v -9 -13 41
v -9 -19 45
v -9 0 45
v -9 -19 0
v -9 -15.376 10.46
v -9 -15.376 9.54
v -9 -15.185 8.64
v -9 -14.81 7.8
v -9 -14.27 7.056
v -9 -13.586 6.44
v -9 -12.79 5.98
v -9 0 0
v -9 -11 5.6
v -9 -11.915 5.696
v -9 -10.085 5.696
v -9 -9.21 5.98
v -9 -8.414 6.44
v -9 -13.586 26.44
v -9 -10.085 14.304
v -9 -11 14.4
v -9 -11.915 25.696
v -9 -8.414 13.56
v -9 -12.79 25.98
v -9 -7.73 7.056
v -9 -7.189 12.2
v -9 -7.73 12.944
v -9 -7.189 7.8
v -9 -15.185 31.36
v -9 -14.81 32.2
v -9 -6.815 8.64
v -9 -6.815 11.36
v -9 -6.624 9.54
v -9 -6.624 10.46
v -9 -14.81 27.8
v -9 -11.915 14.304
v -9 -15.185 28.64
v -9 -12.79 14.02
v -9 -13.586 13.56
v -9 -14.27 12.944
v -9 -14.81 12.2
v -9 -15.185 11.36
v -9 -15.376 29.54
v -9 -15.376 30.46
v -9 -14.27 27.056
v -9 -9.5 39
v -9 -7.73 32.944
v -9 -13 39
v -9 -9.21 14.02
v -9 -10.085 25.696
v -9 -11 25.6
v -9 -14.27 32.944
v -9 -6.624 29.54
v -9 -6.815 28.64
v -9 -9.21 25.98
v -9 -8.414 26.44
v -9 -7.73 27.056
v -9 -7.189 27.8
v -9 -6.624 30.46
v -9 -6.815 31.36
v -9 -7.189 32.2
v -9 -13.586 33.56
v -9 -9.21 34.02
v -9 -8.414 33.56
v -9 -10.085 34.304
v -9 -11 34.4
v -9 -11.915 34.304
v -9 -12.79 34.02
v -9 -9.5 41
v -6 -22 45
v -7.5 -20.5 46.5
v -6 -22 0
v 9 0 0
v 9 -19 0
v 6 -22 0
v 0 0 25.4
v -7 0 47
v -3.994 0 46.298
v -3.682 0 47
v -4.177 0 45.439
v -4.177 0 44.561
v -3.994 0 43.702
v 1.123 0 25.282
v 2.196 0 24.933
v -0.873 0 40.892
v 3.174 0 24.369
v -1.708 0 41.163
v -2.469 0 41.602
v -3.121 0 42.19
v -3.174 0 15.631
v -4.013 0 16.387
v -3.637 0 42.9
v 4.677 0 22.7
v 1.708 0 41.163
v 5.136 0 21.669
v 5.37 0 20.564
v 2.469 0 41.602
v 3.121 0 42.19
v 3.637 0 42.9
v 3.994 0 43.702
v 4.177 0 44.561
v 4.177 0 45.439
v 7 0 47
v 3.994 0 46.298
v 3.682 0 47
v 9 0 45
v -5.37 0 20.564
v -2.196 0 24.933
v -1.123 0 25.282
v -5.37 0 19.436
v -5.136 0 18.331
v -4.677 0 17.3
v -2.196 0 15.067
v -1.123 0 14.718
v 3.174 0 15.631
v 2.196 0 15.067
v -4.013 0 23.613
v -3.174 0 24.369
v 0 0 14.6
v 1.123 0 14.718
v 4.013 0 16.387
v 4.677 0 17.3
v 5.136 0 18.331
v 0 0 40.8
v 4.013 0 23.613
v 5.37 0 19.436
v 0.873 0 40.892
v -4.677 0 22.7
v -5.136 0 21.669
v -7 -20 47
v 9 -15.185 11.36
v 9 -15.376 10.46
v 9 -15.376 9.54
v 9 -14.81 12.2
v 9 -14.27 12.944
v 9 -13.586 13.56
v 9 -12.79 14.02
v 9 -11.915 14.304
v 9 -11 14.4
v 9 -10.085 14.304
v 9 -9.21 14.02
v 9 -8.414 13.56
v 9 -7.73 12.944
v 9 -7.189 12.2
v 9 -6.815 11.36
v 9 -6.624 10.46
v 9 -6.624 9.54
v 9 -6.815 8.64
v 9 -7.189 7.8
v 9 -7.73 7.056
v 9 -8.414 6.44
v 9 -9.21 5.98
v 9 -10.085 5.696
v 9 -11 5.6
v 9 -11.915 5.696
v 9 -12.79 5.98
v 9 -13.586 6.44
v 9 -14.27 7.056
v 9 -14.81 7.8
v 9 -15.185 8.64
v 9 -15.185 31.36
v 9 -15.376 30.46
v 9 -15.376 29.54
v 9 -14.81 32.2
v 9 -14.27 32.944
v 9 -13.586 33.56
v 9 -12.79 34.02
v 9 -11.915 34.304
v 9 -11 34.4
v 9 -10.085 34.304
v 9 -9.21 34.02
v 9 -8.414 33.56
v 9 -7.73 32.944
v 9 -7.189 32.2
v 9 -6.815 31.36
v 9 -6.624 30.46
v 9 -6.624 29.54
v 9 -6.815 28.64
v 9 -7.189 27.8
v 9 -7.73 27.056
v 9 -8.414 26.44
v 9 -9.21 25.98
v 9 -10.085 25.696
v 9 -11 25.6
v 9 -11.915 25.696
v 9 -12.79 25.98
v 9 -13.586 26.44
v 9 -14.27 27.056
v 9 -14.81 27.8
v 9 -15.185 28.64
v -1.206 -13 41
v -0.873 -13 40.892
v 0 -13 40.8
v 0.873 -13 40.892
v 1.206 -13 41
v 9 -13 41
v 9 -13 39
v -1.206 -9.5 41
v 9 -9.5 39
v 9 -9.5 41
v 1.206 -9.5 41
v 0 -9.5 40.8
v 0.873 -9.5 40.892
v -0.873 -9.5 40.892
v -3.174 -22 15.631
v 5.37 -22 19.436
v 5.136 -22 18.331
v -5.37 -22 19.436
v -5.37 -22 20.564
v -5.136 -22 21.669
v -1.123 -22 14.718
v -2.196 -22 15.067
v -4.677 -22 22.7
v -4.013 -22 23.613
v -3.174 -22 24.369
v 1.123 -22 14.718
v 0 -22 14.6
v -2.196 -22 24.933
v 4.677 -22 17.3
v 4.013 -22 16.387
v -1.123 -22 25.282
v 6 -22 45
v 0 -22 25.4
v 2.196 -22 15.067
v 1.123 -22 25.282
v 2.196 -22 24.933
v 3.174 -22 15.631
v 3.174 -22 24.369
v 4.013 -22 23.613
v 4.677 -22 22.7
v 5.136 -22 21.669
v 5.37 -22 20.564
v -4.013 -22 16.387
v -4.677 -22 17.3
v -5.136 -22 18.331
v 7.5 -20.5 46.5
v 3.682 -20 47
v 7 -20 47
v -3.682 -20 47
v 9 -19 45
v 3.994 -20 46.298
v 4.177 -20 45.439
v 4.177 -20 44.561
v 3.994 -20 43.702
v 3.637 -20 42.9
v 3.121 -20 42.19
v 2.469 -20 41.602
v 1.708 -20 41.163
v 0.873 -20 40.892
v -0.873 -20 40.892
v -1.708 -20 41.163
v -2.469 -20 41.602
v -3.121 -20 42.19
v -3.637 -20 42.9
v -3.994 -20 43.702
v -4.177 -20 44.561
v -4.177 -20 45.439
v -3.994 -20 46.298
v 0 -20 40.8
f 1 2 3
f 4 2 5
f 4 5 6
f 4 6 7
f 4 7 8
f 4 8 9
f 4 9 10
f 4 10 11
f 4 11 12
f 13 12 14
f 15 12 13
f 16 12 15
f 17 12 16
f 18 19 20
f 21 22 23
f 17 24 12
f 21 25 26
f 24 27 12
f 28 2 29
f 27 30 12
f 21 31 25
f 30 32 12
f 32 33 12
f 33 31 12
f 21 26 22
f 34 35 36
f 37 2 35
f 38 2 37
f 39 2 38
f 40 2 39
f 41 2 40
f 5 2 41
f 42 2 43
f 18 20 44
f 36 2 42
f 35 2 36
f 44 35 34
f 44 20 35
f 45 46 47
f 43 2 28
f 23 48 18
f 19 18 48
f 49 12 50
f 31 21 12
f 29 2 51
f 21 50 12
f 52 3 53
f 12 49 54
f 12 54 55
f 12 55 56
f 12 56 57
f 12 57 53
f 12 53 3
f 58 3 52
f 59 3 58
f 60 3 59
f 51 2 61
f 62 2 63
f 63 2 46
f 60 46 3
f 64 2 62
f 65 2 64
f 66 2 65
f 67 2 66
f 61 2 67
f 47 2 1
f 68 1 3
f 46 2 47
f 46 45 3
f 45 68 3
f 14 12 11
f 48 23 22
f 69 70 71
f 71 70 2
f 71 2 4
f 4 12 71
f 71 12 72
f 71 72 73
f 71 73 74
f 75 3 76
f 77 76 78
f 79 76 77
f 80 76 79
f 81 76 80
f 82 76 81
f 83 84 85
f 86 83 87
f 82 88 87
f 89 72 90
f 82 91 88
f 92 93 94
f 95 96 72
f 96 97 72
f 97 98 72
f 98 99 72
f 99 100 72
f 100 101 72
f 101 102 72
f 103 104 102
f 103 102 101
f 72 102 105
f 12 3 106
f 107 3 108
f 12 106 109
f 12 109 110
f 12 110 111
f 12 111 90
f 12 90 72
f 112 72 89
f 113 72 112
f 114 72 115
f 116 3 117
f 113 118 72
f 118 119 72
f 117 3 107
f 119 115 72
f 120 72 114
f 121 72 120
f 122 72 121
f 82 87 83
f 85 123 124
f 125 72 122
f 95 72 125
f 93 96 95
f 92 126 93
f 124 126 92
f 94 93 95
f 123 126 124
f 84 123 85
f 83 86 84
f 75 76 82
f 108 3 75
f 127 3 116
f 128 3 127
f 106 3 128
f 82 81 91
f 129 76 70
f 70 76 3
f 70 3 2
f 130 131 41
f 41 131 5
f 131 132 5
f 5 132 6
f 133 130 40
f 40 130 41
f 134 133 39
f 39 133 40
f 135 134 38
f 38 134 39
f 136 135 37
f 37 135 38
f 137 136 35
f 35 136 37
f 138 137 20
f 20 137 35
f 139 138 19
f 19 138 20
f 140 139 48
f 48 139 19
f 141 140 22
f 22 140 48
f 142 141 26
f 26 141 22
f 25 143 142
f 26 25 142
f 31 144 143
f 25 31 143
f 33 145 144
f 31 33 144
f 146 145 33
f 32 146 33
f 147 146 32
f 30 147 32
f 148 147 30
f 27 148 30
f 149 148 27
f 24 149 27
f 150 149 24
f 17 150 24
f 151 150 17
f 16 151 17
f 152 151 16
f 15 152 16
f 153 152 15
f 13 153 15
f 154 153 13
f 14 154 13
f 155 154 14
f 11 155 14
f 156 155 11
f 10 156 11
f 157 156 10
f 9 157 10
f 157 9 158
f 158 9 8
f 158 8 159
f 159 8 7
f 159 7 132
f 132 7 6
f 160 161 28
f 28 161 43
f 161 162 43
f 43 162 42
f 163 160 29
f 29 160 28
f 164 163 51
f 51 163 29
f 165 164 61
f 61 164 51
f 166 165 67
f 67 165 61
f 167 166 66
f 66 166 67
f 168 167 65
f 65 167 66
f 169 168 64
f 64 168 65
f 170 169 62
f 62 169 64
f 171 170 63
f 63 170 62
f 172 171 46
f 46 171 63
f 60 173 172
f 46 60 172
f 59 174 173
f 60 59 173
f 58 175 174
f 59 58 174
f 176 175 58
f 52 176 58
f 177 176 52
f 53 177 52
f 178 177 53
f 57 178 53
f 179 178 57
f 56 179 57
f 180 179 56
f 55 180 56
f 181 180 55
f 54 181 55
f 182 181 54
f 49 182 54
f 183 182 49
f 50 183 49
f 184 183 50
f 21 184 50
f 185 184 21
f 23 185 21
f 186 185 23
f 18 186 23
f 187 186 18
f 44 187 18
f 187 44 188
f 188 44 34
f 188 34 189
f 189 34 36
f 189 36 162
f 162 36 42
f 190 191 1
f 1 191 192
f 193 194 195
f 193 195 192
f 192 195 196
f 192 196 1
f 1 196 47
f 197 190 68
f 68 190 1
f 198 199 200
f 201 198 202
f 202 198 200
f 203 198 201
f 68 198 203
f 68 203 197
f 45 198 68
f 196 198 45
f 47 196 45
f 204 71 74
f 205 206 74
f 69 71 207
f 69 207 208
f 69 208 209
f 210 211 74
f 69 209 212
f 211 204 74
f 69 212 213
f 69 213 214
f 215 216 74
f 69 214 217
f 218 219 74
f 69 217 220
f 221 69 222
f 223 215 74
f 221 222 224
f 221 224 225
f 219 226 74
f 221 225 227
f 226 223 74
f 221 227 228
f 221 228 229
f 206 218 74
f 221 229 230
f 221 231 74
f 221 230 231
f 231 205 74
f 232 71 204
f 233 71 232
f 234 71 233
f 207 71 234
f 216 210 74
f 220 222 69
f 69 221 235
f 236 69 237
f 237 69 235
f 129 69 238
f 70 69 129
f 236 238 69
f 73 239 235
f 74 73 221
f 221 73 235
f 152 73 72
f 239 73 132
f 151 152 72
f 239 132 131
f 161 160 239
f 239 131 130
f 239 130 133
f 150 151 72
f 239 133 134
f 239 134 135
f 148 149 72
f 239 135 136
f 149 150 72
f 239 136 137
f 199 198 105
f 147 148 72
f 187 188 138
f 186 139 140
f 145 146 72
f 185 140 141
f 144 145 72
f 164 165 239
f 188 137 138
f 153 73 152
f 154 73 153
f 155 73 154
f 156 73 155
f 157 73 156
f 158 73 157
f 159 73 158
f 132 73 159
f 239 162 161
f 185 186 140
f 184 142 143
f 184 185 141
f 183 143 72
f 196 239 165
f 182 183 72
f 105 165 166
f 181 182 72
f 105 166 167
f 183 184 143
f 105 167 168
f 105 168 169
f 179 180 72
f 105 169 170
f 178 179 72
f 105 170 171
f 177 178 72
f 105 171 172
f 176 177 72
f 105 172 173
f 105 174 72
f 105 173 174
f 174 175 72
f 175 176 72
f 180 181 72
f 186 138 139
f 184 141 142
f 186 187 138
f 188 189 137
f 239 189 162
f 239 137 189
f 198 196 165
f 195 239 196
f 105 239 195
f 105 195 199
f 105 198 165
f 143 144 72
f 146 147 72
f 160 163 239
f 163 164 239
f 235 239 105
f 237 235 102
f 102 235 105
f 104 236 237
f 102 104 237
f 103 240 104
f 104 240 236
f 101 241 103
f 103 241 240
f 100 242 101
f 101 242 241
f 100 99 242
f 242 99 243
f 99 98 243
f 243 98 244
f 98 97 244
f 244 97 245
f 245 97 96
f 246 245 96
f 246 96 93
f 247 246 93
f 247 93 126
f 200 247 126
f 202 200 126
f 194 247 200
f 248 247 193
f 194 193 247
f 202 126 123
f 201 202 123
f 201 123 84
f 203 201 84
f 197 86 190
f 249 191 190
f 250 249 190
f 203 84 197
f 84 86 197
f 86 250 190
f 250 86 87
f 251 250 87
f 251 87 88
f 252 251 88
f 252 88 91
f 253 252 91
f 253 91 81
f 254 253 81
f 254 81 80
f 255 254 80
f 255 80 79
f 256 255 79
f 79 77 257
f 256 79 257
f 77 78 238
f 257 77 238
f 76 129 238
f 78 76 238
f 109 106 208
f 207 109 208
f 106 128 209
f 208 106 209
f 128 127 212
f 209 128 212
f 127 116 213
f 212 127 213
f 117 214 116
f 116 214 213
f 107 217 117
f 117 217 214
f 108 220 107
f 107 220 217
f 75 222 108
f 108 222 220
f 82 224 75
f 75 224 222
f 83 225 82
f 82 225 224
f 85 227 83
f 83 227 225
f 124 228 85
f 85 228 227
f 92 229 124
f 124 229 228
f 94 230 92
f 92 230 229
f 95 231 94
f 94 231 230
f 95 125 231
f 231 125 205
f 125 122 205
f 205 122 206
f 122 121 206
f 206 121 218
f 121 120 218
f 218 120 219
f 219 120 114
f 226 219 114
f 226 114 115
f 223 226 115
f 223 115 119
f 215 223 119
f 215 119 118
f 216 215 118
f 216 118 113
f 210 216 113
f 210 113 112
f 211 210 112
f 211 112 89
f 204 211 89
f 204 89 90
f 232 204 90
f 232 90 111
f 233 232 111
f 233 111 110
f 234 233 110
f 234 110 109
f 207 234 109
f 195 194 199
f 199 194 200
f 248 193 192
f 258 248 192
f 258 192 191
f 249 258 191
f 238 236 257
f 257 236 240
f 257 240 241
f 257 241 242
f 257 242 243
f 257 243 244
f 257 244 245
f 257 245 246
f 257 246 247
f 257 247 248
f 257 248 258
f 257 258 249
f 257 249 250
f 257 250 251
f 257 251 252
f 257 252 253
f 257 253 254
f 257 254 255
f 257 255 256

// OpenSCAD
// PRUSA iteration3
// Y frame corners
// GNU GPL v3
// Josef Průša <iam@josefprusa.cz> and contributors
// http://www.reprap.org/wiki/Prusa_Mendel
// http://prusamendel.org


module corner_base(){	
 translate([-9,-11,0])cube([18,22,47]);
}

module corner_holes(){
 translate([-11,-11,0]){
  // Bottom hole
  translate([0,11,10]) rotate([0,90,0]) translate([0,0,-5]) cylinder(h = 270, r=4.4, $fn=30);
  // Top hole
  translate([0,11,30]) rotate([0,90,0]) translate([0,0,-5]) cylinder(h = 270, r=4.4, $fn=30);
  // Middle hole
  translate([11,0,20]) rotate([0,0,90]) rotate([0,90,0]) translate([0,0,-5]) cylinder(h = 270, r=5.4, $fn=30);

  // Washer hole
  //translate([11,-3,20]) rotate([0,0,90]) rotate([0,90,0]) translate([0,0,-5]) cylinder(h = 10, r=11, $fn=30);

  // Top smooth rod insert
  // Smooth rod place
  translate([11,2,45]) rotate([0,90,90]) cylinder(h = 270, r=4.2, $fn=30); 
  // Ziptie
  translate([-5,9,39])  cube([30,3.5,2]);
 }
}

module corner_fancy(){
 // Side corner cutouts
  translate([-8,-9,0]) rotate([0,0,-45-180]) translate([-15,0,-1]) cube([30,30,51]);
  translate([8,-9,0]) rotate([0,0,45-180]) translate([-15,0,-1]) cube([30,30,51]);
 // Top corner cutouts
  translate([7,0,49-2]) rotate([0,45,0]) translate([-15,-15,0]) cube([30,30,30]);
  translate([-7,0,49-2]) rotate([0,-45,0]) translate([-15,-15,0]) cube([30,30,30]);
  rotate([0,0,90]){
   translate([-9,0,49-2]) rotate([0,-45,0]) translate([-15,-15,0]) cube([30,30,30]);
  }
}


// Final part
module corner(){
 // Rotate the part for better printing
 translate([0,0,11]) rotate([-90,0,0]) difference(){
  corner_base();
  corner_holes();
  corner_fancy();
 }
}

rotate([90,0,0]) corner();
